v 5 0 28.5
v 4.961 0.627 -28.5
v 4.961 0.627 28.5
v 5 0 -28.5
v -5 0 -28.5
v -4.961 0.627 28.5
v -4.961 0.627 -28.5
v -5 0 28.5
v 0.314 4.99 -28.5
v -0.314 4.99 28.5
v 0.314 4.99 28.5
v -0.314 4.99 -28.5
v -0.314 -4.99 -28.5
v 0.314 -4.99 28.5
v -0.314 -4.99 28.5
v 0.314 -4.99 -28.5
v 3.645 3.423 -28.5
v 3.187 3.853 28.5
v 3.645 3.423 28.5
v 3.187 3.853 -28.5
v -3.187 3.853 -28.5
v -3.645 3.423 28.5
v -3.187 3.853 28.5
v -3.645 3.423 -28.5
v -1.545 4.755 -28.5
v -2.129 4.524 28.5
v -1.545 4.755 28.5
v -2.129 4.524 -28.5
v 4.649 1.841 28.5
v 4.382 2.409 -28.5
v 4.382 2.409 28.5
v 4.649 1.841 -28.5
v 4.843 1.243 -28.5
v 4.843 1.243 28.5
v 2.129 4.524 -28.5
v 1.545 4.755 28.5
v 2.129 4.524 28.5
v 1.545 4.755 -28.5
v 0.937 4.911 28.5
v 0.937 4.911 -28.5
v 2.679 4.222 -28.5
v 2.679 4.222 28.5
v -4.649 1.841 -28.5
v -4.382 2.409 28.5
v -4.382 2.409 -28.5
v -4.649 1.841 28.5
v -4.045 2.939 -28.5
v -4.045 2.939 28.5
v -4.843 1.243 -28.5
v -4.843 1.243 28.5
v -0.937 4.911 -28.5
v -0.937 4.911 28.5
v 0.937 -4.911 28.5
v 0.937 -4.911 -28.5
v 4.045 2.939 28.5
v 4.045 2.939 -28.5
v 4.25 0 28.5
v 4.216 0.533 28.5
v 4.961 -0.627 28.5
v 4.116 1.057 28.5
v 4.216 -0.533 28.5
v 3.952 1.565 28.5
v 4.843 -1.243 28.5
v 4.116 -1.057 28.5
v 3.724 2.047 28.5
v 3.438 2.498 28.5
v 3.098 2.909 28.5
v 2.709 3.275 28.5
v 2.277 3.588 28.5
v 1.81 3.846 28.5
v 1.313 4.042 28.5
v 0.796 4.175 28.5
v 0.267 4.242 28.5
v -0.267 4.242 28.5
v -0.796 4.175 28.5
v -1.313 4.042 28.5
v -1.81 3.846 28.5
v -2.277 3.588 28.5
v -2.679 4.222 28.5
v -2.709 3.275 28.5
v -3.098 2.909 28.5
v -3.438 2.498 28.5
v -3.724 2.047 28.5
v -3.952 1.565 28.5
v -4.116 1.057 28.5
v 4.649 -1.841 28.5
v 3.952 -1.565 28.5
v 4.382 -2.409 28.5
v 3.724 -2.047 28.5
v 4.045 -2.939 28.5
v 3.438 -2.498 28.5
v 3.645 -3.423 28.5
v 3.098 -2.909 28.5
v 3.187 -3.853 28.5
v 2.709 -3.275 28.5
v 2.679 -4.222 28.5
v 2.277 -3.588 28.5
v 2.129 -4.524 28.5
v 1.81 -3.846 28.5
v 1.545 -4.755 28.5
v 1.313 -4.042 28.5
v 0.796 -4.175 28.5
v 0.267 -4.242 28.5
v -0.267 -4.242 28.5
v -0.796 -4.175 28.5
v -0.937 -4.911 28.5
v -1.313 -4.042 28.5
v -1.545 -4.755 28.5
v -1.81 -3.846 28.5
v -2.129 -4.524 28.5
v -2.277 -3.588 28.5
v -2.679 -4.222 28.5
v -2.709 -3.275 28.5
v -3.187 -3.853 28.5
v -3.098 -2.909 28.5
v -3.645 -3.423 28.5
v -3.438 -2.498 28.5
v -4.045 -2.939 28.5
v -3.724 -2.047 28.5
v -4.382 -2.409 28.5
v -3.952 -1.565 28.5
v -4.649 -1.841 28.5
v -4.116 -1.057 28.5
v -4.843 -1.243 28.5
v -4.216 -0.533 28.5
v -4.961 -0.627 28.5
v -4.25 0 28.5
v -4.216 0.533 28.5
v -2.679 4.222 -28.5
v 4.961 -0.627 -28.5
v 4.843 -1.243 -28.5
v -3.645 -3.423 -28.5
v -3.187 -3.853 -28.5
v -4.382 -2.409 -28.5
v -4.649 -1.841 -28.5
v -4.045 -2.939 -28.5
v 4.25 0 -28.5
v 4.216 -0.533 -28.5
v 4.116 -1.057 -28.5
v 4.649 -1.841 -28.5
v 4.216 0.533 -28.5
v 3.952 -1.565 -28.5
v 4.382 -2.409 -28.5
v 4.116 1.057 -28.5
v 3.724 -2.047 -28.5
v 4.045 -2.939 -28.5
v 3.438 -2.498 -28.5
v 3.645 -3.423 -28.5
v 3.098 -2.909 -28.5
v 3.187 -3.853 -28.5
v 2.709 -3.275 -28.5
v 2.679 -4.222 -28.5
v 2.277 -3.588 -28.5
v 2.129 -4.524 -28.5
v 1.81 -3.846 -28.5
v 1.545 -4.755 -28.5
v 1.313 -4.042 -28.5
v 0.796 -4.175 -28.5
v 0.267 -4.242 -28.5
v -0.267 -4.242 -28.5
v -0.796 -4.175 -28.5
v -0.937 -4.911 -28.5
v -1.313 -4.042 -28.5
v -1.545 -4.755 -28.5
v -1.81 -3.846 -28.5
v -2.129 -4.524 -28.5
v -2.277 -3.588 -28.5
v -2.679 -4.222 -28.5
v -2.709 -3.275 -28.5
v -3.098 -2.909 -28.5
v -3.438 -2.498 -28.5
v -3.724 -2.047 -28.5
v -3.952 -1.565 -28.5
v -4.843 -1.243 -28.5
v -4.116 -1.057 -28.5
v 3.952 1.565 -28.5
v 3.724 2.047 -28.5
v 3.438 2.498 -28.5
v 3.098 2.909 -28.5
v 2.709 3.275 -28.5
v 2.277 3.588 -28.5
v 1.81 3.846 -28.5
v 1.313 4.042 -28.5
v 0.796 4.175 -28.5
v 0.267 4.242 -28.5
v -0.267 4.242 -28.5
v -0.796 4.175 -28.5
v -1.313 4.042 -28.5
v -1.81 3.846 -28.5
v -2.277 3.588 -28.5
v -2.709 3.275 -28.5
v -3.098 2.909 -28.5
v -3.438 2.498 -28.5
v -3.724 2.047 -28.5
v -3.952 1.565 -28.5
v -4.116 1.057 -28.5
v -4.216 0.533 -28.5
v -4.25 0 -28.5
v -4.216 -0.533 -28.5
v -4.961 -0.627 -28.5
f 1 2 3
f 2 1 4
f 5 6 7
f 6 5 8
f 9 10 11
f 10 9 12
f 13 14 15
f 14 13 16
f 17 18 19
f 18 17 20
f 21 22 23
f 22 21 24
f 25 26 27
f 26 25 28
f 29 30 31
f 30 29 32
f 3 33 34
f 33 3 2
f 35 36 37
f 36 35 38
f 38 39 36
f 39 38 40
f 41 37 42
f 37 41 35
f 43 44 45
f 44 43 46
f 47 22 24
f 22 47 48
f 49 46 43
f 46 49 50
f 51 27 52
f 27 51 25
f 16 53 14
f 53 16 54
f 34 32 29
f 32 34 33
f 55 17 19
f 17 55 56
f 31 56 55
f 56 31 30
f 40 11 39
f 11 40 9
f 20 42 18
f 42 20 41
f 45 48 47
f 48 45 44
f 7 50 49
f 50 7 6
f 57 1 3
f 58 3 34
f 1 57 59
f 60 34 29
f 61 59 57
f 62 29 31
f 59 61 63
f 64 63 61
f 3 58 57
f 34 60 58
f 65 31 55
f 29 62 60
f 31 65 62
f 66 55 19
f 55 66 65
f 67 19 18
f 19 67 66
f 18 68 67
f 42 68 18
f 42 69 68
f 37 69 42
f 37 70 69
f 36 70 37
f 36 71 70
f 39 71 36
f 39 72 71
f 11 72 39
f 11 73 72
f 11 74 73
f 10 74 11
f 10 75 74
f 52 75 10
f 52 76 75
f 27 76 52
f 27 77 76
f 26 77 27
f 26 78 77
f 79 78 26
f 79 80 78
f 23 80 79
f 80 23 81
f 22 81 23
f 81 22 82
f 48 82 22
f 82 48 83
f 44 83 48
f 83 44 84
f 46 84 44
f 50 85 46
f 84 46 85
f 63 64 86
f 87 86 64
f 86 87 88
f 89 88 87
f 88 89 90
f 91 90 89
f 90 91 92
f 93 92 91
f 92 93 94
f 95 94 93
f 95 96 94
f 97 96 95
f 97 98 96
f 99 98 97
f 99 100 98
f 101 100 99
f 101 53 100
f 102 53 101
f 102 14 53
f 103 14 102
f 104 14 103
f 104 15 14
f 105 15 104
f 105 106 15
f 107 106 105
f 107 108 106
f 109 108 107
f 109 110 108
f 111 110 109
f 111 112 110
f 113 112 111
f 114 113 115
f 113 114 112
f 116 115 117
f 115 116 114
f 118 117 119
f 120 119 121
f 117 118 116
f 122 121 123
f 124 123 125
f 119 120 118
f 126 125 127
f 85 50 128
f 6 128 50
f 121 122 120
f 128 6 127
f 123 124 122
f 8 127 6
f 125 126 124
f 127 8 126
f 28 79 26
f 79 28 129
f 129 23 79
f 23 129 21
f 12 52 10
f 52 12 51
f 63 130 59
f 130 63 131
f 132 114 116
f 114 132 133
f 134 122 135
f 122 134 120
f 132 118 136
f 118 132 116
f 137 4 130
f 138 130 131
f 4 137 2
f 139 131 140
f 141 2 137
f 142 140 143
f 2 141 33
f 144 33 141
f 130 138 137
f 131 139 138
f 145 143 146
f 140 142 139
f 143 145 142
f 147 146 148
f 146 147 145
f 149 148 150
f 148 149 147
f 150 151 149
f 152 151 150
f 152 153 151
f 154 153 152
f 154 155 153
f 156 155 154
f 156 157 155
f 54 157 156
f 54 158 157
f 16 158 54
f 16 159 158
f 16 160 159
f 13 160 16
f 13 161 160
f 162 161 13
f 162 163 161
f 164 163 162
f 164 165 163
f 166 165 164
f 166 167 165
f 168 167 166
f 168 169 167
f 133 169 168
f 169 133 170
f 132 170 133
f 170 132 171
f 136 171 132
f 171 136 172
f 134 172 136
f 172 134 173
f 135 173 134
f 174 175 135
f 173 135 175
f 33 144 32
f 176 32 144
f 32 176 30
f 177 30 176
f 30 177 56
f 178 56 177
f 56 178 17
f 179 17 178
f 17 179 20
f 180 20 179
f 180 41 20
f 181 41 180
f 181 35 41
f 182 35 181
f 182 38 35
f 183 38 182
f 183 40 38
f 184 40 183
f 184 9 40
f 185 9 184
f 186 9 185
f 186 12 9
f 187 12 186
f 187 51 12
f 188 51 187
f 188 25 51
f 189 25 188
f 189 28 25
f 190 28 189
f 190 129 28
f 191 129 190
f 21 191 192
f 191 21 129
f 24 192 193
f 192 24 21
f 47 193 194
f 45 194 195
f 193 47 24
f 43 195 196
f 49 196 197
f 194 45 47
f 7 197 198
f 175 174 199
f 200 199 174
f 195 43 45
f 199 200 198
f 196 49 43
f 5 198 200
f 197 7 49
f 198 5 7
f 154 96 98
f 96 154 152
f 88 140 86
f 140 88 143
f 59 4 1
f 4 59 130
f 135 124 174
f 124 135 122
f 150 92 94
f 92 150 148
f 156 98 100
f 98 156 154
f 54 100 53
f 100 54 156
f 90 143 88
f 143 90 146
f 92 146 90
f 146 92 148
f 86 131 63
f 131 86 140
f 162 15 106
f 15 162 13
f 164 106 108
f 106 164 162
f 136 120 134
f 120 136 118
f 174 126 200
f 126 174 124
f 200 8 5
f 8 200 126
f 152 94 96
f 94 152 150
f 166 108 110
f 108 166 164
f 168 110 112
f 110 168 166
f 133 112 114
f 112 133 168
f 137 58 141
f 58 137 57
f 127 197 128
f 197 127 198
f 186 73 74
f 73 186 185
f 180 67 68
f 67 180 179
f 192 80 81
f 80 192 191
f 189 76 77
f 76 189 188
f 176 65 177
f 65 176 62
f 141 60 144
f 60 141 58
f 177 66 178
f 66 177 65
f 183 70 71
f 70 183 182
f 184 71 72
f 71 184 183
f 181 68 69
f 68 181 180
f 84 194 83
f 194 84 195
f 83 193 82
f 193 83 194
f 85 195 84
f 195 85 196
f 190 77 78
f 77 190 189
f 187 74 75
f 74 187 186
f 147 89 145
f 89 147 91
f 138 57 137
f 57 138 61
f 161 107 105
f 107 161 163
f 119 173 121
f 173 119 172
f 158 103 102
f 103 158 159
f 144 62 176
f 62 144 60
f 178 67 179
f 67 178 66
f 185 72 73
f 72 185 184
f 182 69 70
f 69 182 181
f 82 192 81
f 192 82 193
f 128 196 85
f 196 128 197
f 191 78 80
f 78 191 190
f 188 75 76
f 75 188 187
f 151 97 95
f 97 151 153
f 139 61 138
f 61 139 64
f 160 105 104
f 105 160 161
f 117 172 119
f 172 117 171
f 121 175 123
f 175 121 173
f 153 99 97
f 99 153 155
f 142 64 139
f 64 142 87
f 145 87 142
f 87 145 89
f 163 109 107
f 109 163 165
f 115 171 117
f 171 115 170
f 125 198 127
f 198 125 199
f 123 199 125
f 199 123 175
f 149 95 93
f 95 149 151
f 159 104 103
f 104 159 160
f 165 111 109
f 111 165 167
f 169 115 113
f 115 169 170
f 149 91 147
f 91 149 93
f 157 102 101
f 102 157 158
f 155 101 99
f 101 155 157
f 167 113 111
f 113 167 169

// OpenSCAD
$fn = 50;


difference() {
	union() {
		translate(v = [0, 0, -28.5000000000]) {
			cylinder(h = 57, r = 5.0000000000);
		}
	}
	union() {
		translate(v = [0, 0, -100.0000000000]) {
			cylinder(h = 200, r = 4.2500000000);
		}
	}
}
